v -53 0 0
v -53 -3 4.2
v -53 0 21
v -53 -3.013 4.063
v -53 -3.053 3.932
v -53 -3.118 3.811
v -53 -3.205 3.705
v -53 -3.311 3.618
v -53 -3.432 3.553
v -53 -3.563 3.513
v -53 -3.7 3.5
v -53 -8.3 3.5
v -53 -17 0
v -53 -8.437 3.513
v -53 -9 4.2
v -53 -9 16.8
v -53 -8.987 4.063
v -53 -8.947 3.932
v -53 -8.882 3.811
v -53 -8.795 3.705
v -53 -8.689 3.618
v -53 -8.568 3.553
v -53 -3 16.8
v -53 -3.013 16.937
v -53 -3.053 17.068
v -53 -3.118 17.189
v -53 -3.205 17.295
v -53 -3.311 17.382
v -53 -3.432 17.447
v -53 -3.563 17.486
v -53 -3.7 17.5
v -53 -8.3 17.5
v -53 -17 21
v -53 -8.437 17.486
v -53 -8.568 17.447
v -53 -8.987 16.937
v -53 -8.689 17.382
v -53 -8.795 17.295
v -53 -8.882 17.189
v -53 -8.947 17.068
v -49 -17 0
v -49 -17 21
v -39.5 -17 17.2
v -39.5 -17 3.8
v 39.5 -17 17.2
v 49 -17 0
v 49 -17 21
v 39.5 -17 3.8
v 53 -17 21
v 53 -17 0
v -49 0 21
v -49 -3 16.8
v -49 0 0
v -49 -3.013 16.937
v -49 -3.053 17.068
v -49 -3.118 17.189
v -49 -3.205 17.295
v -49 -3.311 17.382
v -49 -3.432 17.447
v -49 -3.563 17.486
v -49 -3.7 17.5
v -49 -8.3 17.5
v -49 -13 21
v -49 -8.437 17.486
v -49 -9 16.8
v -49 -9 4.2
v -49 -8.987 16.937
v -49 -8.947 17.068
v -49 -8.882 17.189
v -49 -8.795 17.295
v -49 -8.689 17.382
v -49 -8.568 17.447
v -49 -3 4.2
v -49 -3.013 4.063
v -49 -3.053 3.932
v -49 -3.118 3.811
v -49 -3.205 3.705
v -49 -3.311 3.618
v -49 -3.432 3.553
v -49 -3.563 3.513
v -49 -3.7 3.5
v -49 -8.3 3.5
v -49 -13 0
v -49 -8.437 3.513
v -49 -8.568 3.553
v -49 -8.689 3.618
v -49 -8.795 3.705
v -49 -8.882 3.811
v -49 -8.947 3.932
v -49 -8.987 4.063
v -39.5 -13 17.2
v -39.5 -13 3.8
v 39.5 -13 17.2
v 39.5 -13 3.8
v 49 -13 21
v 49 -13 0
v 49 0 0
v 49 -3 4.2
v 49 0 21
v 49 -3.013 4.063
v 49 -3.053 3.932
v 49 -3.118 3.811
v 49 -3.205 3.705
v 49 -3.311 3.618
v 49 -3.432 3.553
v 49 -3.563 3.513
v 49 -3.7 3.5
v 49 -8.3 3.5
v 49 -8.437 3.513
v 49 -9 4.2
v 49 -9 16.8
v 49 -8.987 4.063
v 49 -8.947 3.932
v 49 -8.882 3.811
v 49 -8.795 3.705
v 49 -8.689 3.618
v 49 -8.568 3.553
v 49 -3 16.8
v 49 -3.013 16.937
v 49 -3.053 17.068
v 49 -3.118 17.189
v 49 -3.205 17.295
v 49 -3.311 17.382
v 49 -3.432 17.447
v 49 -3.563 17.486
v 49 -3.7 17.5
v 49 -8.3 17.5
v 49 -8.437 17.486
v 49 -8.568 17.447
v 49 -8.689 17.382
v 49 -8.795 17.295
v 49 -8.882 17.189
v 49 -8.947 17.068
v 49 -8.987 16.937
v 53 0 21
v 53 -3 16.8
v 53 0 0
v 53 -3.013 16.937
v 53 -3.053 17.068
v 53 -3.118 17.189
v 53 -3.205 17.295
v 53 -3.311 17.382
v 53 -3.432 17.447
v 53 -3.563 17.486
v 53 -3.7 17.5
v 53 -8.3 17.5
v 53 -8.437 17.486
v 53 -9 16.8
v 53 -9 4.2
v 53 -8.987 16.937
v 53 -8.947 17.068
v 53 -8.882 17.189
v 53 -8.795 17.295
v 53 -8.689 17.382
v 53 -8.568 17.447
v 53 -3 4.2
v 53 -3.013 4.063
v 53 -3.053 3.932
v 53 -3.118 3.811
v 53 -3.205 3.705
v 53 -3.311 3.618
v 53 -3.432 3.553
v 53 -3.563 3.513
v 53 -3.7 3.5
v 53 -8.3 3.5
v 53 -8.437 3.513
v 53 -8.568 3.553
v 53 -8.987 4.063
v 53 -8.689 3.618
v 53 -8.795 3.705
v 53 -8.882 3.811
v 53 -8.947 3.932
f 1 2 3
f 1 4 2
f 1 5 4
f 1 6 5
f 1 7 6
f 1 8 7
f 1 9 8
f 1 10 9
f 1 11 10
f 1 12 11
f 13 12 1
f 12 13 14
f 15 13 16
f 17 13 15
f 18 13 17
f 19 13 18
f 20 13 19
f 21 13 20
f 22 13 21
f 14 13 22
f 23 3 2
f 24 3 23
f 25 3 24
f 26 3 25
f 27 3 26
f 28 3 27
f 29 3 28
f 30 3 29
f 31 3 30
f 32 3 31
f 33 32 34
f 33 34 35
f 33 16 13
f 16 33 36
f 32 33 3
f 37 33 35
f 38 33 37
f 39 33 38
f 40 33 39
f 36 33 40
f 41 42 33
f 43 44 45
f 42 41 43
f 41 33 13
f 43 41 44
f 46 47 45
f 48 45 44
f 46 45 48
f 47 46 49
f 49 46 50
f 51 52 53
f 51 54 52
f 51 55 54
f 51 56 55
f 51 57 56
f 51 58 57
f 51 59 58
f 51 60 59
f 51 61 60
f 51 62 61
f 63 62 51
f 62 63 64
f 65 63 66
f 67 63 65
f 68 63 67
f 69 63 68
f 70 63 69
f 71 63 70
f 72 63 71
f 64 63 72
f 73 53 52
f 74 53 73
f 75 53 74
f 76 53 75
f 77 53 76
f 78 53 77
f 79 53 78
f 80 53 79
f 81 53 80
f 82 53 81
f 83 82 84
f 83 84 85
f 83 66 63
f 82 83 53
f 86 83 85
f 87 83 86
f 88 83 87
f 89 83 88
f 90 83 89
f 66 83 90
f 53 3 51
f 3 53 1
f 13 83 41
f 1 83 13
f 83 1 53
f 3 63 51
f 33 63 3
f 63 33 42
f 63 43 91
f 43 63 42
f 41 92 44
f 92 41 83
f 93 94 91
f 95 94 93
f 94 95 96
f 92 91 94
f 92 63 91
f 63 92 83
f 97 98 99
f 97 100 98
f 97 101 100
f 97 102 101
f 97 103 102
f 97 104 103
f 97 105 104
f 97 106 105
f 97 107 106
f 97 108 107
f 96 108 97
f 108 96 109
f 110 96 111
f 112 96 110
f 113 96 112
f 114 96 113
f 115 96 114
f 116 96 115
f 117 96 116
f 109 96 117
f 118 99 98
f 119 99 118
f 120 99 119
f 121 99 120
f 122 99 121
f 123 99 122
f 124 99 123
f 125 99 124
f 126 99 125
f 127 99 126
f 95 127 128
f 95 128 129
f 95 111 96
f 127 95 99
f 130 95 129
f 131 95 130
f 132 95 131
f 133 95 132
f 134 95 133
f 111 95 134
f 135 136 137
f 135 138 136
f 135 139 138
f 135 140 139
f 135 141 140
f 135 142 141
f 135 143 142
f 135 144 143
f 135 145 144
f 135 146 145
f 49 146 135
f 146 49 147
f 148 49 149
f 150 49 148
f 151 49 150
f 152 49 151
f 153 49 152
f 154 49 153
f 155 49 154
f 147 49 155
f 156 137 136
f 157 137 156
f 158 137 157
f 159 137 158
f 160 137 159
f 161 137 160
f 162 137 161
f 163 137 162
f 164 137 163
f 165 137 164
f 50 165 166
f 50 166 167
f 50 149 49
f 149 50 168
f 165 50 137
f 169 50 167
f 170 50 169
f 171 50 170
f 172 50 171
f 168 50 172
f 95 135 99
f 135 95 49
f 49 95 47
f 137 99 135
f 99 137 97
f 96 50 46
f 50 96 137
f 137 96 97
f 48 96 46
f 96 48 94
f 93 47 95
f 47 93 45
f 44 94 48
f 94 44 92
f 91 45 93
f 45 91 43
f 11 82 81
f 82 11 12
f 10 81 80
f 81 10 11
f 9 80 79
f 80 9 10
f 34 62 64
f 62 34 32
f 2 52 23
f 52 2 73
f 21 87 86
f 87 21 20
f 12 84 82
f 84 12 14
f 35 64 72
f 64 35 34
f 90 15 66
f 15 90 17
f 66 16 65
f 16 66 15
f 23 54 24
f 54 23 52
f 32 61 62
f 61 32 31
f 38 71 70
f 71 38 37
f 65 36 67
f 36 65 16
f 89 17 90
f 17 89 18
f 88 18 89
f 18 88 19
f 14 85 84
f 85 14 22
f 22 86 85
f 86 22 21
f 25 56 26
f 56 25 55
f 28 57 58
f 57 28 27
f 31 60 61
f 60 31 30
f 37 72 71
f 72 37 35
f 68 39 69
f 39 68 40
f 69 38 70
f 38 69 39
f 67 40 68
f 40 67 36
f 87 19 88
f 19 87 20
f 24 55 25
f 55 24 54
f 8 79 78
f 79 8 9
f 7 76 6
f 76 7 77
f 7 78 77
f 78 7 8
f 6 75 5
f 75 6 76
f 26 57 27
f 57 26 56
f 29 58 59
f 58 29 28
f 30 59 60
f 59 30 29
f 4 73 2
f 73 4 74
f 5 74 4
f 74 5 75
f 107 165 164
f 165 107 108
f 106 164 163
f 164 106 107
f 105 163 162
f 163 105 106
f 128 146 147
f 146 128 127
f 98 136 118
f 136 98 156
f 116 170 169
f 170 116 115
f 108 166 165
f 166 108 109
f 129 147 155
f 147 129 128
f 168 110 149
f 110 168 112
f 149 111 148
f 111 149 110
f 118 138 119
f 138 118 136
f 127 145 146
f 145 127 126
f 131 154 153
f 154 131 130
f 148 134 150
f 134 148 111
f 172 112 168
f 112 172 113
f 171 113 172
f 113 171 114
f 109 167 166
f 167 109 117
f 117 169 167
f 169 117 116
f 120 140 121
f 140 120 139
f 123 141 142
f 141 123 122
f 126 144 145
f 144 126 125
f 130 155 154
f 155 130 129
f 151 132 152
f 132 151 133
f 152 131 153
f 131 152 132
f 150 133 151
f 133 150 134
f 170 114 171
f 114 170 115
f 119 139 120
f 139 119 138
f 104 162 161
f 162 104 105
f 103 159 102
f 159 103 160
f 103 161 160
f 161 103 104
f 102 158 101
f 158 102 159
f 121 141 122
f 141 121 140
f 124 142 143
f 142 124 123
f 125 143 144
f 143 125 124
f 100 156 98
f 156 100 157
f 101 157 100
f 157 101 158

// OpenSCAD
ecart = 98;
barre_l = 13.4;
barre_ep = 4;
boucle_l = 21;
boucle_ep = 4;
fenetre_l = 14;
fenetre_h = 6;
semelle = 3;
appui = 10;
a_plat = false;

$fn = 32;

z_barre = semelle + appui;
h = z_barre + barre_ep;

module fenetre() {
    rotate([0, 90, 0])
        linear_extrude(boucle_ep + 2, center = true)
            offset(r = 0.7)
                square([fenetre_h - 1.4, fenetre_l - 1.4], center = true);
}

module bride() {
    difference() {
        union() {
            translate([-ecart/2, -barre_l/2, z_barre])
                cube([ecart, barre_l, barre_ep]);
            for (s = [-1, 1]) {
                x = s * (ecart/2 + boucle_ep/2);
                translate([x, 0, h/2])
                    cube([boucle_ep, boucle_l, h], center = true);
                hull() {
                    translate([s * (ecart/2 - 9), 0, z_barre + barre_ep/2])
                        cube([1, barre_l, barre_ep], center = true);
                    translate([x, 0, z_barre + barre_ep/2])
                        cube([boucle_ep, boucle_l, barre_ep], center = true);
                }
            }
        }
        for (s = [-1, 1])
            translate([s * (ecart/2 + boucle_ep/2), 0, semelle + fenetre_h/2])
                fenetre();
    }
}

if (a_plat)
    bride();
else
    translate([0, 0, boucle_l/2]) rotate([90, 0, 0]) bride();
